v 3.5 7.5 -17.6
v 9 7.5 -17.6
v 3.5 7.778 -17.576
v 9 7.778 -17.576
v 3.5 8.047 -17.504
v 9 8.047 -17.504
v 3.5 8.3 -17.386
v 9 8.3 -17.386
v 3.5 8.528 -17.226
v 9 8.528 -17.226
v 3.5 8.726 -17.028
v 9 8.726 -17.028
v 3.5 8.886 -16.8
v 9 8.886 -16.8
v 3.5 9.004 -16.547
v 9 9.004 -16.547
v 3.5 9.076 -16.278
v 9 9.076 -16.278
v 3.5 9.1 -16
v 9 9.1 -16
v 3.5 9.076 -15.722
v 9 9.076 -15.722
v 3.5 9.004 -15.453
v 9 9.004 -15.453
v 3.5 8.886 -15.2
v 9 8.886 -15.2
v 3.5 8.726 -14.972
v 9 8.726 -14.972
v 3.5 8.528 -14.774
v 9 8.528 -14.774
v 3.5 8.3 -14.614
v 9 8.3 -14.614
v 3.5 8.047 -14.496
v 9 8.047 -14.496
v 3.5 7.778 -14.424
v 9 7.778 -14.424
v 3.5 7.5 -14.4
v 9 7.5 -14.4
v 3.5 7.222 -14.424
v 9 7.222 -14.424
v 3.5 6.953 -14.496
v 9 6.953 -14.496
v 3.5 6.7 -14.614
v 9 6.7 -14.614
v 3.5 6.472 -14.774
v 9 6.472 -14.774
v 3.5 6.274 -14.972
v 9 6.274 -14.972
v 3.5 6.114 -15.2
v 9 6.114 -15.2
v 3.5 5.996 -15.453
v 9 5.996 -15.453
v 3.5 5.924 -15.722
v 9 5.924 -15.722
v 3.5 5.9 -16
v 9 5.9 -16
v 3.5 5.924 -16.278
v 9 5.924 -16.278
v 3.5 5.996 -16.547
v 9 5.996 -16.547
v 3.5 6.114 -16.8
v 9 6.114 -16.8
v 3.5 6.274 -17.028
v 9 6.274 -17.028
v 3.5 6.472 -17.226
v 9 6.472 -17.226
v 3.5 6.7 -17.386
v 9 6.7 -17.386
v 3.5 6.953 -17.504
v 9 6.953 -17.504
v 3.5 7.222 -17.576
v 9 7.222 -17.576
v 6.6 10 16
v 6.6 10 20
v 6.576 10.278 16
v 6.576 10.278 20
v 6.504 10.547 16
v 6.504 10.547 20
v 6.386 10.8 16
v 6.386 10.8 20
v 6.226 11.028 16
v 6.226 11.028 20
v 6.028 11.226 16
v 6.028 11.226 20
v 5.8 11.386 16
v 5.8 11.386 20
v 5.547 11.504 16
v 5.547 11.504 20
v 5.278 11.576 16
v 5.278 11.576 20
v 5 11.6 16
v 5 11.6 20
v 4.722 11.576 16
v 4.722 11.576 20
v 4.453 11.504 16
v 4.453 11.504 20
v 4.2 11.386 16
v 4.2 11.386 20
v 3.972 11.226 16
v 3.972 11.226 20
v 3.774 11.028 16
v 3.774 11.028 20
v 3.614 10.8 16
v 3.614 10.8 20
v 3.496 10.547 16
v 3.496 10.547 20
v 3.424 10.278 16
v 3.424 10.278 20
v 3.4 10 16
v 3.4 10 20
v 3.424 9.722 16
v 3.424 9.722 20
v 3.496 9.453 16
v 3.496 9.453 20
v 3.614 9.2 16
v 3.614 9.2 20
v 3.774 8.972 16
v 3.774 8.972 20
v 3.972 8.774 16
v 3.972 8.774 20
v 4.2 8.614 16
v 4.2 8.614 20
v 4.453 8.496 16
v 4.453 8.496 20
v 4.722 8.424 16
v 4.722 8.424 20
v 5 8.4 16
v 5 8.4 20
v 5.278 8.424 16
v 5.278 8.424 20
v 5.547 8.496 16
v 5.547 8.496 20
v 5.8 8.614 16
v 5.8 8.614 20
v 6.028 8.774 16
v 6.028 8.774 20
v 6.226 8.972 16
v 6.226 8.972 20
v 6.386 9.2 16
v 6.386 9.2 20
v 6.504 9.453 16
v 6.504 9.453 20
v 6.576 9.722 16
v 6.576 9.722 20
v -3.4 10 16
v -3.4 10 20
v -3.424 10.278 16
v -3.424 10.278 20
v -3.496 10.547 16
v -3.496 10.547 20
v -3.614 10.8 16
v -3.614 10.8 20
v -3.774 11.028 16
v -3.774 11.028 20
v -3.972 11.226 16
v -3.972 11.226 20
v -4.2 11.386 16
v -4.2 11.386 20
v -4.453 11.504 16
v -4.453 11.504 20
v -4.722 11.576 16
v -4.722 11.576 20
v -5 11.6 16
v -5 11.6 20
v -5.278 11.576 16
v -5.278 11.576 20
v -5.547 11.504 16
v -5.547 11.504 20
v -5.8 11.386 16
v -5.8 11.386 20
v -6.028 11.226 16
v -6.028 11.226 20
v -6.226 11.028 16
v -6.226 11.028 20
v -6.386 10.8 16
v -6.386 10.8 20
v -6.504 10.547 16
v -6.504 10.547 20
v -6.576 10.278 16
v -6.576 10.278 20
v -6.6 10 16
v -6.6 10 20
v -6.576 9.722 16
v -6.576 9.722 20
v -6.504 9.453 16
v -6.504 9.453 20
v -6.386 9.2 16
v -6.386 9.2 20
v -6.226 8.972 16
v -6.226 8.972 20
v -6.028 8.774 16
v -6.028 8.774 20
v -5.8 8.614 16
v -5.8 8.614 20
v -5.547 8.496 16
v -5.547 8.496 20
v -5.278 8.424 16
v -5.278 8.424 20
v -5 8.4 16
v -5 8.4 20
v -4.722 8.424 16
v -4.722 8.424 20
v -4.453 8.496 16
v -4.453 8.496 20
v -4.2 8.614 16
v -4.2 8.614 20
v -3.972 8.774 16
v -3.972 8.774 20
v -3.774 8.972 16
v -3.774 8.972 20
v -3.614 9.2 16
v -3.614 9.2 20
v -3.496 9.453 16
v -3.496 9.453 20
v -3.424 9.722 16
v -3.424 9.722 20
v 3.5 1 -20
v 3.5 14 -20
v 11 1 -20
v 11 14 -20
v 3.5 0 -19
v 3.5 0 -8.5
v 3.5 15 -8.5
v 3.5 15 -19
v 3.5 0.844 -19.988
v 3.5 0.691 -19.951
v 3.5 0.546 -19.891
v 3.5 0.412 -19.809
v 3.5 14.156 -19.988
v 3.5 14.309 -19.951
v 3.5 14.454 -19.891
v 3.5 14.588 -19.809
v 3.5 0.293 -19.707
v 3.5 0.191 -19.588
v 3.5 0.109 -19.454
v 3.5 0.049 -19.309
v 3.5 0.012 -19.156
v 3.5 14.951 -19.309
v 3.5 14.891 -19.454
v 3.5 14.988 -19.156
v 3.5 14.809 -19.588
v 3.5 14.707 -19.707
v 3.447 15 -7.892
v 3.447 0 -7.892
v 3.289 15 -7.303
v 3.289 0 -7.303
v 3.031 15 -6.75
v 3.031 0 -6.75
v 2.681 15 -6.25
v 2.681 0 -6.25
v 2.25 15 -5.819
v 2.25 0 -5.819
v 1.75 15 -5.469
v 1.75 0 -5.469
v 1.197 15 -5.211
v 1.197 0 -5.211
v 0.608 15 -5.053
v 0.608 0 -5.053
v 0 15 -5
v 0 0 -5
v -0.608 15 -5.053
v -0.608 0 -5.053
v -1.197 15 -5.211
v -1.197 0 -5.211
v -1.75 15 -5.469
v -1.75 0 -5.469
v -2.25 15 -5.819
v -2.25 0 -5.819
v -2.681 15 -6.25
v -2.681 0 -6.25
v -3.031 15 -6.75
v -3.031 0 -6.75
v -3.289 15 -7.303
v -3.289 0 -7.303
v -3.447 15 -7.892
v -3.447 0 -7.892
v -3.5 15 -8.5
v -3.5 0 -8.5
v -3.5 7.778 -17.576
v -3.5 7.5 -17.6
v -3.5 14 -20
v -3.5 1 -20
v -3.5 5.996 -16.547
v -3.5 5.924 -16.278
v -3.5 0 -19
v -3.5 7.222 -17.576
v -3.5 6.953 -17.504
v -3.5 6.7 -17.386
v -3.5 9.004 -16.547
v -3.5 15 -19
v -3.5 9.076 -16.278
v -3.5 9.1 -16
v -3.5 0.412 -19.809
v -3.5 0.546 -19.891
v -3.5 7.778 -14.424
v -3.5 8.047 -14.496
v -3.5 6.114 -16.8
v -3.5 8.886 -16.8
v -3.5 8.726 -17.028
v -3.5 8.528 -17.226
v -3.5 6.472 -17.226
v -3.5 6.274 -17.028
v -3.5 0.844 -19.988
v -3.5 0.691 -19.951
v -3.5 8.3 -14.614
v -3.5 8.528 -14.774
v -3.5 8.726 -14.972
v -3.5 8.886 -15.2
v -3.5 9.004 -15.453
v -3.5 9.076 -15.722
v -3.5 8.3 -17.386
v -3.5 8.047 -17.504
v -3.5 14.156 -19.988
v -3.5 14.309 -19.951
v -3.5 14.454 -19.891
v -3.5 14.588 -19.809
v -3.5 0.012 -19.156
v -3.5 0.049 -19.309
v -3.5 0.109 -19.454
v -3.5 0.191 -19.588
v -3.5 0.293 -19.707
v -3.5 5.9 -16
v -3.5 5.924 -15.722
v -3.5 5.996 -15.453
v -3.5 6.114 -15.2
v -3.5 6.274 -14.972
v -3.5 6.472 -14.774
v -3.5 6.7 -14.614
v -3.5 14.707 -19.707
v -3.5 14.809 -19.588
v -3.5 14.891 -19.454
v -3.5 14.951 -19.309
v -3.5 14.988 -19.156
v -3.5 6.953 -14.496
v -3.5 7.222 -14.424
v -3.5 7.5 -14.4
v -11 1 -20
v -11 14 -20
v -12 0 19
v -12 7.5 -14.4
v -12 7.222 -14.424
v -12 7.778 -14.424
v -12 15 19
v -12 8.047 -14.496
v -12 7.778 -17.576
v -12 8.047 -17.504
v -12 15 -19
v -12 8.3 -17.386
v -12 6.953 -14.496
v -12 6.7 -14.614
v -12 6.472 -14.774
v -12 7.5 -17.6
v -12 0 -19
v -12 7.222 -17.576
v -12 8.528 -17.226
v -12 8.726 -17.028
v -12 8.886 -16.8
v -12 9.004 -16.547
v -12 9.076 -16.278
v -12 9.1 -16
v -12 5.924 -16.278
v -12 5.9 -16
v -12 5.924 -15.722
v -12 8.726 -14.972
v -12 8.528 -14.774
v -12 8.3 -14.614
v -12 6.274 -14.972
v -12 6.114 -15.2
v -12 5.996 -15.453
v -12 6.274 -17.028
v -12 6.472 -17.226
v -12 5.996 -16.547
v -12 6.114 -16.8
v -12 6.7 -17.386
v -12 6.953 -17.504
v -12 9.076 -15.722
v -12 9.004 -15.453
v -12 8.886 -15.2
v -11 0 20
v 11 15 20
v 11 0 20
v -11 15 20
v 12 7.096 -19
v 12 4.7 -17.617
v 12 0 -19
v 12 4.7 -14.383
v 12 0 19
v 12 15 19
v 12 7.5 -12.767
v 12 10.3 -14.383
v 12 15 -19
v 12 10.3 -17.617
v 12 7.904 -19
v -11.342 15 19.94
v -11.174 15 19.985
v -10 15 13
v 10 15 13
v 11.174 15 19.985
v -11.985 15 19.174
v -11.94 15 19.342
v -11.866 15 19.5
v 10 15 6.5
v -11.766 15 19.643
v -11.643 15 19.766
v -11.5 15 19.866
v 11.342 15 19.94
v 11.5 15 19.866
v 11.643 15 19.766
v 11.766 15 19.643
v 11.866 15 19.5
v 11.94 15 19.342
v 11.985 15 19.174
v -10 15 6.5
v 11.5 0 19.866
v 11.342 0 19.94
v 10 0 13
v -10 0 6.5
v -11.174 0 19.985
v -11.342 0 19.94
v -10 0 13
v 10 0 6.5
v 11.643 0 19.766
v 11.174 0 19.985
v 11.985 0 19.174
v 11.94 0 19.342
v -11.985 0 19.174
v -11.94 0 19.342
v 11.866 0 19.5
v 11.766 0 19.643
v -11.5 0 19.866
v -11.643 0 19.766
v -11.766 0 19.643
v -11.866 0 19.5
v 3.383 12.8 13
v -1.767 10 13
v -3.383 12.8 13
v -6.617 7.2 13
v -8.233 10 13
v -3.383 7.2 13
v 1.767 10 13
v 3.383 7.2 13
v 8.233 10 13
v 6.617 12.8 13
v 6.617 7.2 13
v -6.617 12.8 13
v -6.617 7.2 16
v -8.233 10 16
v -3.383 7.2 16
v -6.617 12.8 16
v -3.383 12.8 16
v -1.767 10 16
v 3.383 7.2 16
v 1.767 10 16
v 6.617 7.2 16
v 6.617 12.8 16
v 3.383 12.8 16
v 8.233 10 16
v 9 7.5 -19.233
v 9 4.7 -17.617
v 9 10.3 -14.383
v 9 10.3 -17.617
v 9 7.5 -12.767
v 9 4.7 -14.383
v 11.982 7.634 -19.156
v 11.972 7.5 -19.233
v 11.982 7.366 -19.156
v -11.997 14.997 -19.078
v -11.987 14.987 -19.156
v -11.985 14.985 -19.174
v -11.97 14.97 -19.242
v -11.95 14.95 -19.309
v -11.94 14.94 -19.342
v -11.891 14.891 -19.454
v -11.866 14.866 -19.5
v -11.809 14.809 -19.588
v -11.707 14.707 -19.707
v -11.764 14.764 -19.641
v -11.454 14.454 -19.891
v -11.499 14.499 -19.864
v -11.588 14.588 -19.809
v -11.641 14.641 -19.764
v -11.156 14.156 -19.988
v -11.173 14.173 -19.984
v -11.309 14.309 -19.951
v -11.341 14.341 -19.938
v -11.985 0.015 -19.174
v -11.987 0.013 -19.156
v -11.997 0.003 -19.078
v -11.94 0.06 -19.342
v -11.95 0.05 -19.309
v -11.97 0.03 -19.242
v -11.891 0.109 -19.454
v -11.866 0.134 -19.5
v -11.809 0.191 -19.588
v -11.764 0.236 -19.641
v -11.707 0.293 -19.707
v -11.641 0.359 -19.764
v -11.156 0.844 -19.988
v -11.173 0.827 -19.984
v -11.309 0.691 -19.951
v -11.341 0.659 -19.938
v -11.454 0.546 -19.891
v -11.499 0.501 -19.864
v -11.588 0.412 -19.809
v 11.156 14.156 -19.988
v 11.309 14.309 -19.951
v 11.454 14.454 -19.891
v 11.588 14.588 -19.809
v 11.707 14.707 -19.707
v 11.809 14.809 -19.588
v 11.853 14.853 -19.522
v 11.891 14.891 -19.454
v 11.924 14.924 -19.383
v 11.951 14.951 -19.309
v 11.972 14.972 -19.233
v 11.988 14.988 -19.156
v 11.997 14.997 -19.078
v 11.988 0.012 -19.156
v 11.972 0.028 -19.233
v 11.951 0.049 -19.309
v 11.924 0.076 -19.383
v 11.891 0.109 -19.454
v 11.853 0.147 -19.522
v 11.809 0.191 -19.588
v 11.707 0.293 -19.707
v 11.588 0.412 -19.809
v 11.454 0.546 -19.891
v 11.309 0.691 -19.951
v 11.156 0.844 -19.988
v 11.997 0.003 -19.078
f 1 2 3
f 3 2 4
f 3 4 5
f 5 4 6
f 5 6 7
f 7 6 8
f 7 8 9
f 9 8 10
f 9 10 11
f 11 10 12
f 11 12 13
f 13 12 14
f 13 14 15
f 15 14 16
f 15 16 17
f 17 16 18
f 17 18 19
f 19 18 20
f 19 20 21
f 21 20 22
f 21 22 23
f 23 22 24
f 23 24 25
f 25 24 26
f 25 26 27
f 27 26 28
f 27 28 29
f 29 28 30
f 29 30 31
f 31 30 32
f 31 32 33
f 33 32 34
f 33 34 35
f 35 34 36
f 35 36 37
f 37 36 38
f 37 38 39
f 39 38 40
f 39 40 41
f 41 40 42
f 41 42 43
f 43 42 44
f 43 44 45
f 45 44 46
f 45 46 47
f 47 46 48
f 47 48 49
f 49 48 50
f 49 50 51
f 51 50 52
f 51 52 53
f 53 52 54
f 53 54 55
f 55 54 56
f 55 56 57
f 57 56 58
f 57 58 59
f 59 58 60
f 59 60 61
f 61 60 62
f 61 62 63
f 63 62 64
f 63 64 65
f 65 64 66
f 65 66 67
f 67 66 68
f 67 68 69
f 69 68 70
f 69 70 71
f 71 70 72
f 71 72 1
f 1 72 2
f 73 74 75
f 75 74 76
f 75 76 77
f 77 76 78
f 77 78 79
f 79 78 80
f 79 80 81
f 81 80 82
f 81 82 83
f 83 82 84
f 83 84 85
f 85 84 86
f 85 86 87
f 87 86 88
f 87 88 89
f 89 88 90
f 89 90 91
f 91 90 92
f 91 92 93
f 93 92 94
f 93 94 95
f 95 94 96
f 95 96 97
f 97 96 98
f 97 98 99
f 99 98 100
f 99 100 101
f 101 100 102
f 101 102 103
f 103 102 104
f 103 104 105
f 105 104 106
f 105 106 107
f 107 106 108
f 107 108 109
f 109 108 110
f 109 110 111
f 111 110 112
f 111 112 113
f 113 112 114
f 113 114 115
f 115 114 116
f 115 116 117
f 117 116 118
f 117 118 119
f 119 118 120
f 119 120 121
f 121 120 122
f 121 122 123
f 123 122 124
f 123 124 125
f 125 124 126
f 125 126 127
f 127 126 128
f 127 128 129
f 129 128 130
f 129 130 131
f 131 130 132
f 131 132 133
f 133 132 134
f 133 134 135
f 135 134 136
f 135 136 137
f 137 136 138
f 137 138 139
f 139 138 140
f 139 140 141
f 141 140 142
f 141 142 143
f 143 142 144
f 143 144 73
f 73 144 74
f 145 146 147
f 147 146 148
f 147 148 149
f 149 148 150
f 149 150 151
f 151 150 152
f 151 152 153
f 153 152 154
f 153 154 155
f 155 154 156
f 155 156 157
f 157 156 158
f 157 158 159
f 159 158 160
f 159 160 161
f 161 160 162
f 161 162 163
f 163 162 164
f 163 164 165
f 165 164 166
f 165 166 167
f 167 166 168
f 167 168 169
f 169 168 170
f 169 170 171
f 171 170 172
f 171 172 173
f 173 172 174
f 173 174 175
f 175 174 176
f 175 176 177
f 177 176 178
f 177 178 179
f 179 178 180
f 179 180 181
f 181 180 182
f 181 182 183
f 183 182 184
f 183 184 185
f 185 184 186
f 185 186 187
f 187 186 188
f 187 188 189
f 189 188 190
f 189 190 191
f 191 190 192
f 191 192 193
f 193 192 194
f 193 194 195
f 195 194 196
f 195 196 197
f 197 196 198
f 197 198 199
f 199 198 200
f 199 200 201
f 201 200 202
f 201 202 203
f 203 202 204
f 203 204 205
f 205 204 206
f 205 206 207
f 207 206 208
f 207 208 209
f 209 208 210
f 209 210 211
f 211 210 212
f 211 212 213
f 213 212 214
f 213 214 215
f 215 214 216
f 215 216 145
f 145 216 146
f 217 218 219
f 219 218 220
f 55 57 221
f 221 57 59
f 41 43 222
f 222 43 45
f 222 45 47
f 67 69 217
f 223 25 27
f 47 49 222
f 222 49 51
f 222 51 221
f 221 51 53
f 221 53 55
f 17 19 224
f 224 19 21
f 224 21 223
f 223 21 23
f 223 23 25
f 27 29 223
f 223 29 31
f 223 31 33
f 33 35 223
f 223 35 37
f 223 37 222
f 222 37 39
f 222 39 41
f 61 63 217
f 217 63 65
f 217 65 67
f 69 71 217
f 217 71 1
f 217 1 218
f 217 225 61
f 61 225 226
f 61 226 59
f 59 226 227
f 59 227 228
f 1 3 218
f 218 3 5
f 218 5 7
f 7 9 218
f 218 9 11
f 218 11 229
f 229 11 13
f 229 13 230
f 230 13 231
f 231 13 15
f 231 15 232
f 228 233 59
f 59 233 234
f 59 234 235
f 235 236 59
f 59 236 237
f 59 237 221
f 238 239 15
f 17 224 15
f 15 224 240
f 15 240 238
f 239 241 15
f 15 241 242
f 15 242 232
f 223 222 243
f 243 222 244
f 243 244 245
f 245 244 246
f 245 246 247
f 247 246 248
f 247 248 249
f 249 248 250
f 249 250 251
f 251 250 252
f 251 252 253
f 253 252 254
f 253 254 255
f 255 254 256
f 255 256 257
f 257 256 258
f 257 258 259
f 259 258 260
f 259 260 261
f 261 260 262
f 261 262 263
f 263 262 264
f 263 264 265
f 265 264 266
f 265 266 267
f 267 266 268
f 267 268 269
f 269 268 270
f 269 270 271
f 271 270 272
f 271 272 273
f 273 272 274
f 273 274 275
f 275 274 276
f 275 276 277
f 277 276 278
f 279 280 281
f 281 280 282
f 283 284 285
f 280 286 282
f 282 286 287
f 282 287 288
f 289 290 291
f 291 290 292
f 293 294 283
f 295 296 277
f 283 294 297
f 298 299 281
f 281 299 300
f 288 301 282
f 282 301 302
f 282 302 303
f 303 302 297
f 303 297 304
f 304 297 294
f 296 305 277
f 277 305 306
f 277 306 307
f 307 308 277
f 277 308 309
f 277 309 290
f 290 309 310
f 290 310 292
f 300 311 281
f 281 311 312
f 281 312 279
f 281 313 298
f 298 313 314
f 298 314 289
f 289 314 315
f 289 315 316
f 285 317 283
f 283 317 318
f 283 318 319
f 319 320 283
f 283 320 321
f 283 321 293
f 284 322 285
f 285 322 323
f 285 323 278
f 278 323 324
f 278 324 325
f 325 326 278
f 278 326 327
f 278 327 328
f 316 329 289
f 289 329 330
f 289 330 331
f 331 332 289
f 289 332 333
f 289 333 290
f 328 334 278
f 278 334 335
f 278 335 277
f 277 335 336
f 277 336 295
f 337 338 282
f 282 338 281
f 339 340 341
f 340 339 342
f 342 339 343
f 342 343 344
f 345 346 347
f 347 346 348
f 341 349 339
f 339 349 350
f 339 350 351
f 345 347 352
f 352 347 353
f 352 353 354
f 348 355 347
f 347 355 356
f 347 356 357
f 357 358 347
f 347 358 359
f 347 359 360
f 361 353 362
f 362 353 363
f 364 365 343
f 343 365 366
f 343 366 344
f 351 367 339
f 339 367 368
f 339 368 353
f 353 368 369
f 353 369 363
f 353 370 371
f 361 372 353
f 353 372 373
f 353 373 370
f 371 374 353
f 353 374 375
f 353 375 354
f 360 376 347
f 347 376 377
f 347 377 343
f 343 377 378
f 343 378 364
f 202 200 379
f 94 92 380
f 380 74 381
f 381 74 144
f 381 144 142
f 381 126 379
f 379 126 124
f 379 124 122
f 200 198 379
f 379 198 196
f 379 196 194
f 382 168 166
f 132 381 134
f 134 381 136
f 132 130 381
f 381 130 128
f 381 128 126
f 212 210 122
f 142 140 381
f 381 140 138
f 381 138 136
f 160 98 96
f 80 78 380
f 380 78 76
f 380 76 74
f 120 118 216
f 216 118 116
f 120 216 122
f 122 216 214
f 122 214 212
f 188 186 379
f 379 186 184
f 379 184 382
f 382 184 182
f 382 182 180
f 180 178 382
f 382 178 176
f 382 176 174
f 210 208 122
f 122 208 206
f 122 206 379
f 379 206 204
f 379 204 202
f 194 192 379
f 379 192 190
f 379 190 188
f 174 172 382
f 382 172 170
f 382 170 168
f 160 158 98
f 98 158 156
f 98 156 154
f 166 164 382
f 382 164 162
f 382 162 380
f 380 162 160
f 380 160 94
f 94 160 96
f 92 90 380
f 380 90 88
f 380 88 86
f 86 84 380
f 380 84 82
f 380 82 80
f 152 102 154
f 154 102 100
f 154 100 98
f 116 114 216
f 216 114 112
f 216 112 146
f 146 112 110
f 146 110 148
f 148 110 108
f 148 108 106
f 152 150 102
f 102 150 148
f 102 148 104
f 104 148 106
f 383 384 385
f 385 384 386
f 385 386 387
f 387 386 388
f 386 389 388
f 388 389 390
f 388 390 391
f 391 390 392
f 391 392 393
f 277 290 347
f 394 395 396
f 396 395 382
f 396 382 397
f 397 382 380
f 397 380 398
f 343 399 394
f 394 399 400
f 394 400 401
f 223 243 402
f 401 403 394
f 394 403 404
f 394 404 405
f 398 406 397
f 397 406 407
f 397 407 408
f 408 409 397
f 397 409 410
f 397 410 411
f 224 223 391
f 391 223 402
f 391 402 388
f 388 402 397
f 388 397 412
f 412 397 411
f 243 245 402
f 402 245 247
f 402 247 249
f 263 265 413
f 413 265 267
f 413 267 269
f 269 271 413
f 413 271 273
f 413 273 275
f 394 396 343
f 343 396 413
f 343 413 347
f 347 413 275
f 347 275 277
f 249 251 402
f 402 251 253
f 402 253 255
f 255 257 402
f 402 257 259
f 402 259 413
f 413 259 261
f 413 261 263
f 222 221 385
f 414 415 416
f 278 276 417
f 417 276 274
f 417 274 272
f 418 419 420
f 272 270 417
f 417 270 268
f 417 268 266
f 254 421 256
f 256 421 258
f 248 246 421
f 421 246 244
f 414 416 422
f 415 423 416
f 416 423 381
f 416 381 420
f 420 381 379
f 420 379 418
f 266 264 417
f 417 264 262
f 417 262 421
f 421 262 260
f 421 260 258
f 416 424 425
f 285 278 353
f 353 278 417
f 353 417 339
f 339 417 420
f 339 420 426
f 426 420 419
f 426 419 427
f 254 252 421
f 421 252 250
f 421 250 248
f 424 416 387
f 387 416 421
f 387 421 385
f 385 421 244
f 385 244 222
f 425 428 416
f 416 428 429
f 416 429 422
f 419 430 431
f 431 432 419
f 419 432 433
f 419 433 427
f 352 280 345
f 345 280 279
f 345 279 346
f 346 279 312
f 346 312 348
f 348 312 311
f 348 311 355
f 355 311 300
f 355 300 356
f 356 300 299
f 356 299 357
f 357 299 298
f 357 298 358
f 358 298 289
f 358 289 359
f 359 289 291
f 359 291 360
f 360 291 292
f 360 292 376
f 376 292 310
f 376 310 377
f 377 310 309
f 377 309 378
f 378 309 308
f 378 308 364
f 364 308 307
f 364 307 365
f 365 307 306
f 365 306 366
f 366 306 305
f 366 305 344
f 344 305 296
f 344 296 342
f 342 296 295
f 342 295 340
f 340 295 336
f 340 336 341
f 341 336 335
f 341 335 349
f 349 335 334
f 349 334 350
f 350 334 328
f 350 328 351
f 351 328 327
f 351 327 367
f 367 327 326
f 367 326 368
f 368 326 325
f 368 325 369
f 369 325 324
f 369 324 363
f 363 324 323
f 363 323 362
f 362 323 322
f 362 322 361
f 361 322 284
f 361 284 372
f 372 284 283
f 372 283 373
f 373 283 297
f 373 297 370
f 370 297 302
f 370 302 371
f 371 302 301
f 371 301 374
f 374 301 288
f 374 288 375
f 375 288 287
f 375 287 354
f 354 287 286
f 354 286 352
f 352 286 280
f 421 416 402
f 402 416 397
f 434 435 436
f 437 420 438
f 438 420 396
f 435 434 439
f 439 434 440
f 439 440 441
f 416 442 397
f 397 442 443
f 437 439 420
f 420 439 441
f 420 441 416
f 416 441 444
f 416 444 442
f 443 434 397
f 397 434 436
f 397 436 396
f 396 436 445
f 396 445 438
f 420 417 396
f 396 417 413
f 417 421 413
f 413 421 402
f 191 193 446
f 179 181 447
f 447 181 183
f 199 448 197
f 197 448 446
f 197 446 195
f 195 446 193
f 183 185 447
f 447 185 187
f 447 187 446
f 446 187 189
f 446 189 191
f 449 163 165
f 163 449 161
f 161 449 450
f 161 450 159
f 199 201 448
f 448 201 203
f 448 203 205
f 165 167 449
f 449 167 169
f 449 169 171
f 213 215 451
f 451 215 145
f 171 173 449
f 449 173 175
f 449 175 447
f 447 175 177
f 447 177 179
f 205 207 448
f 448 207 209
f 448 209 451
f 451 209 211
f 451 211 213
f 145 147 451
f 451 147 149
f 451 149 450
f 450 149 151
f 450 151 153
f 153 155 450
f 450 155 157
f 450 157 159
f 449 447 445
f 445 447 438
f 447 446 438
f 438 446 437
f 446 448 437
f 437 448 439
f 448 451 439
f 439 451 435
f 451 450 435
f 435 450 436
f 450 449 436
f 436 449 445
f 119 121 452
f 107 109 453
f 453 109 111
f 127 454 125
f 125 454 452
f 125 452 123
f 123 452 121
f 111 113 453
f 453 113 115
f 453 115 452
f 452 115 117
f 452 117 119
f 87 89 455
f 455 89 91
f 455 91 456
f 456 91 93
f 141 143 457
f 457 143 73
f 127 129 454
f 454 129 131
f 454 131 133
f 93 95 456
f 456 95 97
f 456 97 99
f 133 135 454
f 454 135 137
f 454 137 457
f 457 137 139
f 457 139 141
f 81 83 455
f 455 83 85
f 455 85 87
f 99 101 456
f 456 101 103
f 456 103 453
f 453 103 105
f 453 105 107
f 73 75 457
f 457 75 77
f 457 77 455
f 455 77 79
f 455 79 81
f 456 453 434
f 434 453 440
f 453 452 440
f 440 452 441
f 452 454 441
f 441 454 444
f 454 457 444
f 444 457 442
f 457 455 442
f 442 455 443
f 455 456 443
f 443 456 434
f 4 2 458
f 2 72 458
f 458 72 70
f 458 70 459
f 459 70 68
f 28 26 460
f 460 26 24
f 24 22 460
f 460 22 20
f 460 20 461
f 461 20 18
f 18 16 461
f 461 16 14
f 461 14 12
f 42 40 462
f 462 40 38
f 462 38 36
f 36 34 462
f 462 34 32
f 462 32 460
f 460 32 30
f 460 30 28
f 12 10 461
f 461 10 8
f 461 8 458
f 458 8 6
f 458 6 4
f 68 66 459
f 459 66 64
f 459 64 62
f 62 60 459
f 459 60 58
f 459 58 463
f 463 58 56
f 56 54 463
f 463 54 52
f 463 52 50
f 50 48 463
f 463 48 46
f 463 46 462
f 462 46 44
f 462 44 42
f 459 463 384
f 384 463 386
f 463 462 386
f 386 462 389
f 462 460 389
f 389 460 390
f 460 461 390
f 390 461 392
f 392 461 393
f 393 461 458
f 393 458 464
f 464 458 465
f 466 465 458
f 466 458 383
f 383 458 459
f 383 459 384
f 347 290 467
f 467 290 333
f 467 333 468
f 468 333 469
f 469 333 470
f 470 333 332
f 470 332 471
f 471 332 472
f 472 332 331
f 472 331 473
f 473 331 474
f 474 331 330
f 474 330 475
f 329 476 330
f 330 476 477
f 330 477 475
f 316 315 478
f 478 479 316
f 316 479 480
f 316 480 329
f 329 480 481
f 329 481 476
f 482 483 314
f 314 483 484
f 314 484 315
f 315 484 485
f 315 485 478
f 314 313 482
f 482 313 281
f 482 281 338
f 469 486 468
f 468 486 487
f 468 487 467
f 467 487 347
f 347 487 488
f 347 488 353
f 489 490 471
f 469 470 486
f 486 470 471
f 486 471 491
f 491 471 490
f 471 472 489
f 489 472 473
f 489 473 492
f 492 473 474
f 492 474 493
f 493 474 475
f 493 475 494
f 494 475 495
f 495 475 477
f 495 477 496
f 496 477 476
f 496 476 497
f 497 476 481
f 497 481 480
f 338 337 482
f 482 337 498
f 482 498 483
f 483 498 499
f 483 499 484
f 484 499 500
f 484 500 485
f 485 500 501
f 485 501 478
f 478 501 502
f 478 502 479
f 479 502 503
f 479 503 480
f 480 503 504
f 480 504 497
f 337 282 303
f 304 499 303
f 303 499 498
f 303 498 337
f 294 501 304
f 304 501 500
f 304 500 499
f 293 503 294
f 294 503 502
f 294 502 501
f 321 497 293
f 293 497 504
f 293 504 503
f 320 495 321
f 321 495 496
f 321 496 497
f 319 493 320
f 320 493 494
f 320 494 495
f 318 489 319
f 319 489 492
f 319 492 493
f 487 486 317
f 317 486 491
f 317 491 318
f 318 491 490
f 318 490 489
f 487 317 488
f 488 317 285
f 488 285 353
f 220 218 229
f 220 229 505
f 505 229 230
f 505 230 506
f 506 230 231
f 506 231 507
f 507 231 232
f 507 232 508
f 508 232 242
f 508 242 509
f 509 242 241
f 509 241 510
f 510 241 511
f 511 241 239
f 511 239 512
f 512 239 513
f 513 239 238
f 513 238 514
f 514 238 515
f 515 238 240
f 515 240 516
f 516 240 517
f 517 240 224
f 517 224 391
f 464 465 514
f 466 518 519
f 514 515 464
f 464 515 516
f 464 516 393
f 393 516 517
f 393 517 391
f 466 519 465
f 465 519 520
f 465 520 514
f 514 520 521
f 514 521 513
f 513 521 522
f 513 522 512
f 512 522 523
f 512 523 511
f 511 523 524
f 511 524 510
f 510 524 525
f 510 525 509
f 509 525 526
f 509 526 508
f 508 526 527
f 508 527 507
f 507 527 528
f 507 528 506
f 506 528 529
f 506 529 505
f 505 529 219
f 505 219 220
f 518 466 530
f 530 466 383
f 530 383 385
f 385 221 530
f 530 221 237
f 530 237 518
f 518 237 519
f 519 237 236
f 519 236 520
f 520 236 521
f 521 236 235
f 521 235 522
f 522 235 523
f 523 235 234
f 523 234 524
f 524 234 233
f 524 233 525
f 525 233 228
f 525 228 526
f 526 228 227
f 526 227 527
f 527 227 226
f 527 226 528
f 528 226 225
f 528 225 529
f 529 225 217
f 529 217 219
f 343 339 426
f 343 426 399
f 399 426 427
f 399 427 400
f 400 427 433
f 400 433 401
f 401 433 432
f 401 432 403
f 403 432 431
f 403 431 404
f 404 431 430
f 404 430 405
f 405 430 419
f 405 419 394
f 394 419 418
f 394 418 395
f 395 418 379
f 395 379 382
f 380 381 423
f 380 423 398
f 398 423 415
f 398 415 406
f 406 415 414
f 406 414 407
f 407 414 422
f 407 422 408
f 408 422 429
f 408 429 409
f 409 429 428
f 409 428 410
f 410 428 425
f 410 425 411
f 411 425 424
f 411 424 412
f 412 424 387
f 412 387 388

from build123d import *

# Parameters (mm, degrees)
SALIENTE_EXTRUIR2_DEPTH    = 15
CORTAR_EXTRUIR2_DEPTH      = 28.730849248
CORTAR_EXTRUIR2_DEPTH_BACK = 28.730849248
CROQUIS3_R                 = 1.6
CROQUIS4_W                 = 20
CROQUIS4_H                 = 6.5
CORTAR_EXTRUIR3_DEPTH      = 28.730849248
CORTAR_EXTRUIR4_REACH      = 46.373
CROQUIS5_R                 = 1.6
CORTAR_EXTRUIR5_DEPTH      = 3
CORTAR_EXTRUIR6_DEPTH      = 3
REDONDEO1_R                = 1


with BuildPart() as part:
    # Croquis1 → Saliente-Extruir2 (new body)
    with BuildSketch(Plane(origin=(0, 0, 0), x_dir=(1, 0, 0), z_dir=(0, 1, 0))):
        with BuildLine():
            Line((-12, -20), (12, -20))
            Line((12, -20), (12, 20))
            Line((12, 20), (3.5, 20))
            Line((3.5, 20), (3.5, 8.5))
            ThreePointArc((3.5, 8.5), (0, 5), (-3.5, 8.5))
            Line((-3.5, 8.5), (-3.5, 20))
            Line((-3.5, 20), (-12, 20))
            Line((-12, 20), (-12, -20))
        make_face()
    extrude(amount=SALIENTE_EXTRUIR2_DEPTH)

    # Croquis3 → Cortar-Extruir2 (cut, two sides: drawn at the far end of the back side and taken through both)
    with BuildSketch(Plane(origin=(0, 0, 0), x_dir=(0, 0, -1), z_dir=(1, 0, 0)).offset(-CORTAR_EXTRUIR2_DEPTH_BACK)):
        with Locations((16, 7.5)):
            Circle(CROQUIS3_R)
    extrude(amount=CORTAR_EXTRUIR2_DEPTH + CORTAR_EXTRUIR2_DEPTH_BACK, mode=Mode.SUBTRACT)

    # Croquis4 → Cortar-Extruir3 (cut, through all)
    with BuildSketch(Plane(origin=(0, 15, 0), x_dir=(1, 0, 0), z_dir=(0, 1, 0))):
        with Locations((0, -9.75)):
            Rectangle(CROQUIS4_W, CROQUIS4_H)
    extrude(amount=-CORTAR_EXTRUIR3_DEPTH, mode=Mode.SUBTRACT)

    # Croquis5 → Cortar-Extruir4 (cut, up to next)
    with BuildSketch(Plane.XY.offset(20), mode=Mode.PRIVATE) as cortar_extruir4_sk1:
        with Locations((-5, 10)):
            Circle(CROQUIS5_R)
    cortar_extruir4_tool1 = extrude(cortar_extruir4_sk1.sketch, amount=-CORTAR_EXTRUIR4_REACH, mode=Mode.PRIVATE) & part.part
    # Croquis5 → Cortar-Extruir4 (cut, up to next)
    with BuildSketch(Plane.XY.offset(20), mode=Mode.PRIVATE) as cortar_extruir4_sk2:
        with Locations((5, 10)):
            Circle(CROQUIS5_R)
    cortar_extruir4_tool2 = extrude(cortar_extruir4_sk2.sketch, amount=-CORTAR_EXTRUIR4_REACH, mode=Mode.PRIVATE) & part.part
    add(cortar_extruir4_tool1.solids().sort_by_distance((-5, 10, 20))[0], mode=Mode.SUBTRACT)
    add(cortar_extruir4_tool2.solids().sort_by_distance((5, 10, 20))[0], mode=Mode.SUBTRACT)

    # Croquis6 → Cortar-Extruir5 (cut)
    with BuildSketch(Plane(origin=(0, 0, 13), x_dir=(-1, 0, 0), z_dir=(0, 0, -1))):
        Polygon((-3.383419246, 12.8), (-6.616580754, 12.8), (-8.233161507, 10), (-6.616580754, 7.2), (-3.383419246, 7.2), (-1.766838493, 10), align=None)
        Polygon((6.616580754, 12.8), (3.383419246, 12.8), (1.766838493, 10), (3.383419246, 7.2), (6.616580754, 7.2), (8.233161507, 10), align=None)
    extrude(amount=-CORTAR_EXTRUIR5_DEPTH, mode=Mode.SUBTRACT)

    # Croquis7 → Cortar-Extruir6 (cut)
    with BuildSketch(Plane(origin=(12, 0, 0), x_dir=(0, 0, -1), z_dir=(1, 0, 0))):
        Polygon((17.616580754, 4.7), (19.233161507, 7.5), (17.616580754, 10.3), (14.383419246, 10.3), (12.766838493, 7.5), (14.383419246, 4.7), align=None)
    extrude(amount=-CORTAR_EXTRUIR6_DEPTH, mode=Mode.SUBTRACT)

    # Redondeo1
    # the kernel refuses this fillet: 1 mm, written as the material it takes off along each edge
    with BuildSketch(Plane(origin=(14.5, 0, -20), x_dir=(0, 0, 1), z_dir=(-1, 0, 0)), Plane(origin=(-1, 0, -20), x_dir=(0, 0, 1), z_dir=(-1, 0, 0))) as redondeo1_piece_1:
        with BuildLine():
            CenterArc((REDONDEO1_R, REDONDEO1_R), REDONDEO1_R, 180, 90)
            Line((0, REDONDEO1_R), (0, 0))
            Line((0, 0), (REDONDEO1_R, 0))
        make_face()
    extrude(amount=13.5, mode=Mode.SUBTRACT)
    with BuildSketch(Plane(origin=(12, -2.5, -20), x_dir=(0, 0, 1), z_dir=(0, 1, 0)), Plane(origin=(12, -2.5, 20), x_dir=(-1, 0, 0), z_dir=(0, 1, 0))) as redondeo1_piece_2:
        with BuildLine():
            CenterArc((REDONDEO1_R, -REDONDEO1_R), REDONDEO1_R, 90, 90)
            Line((0, -REDONDEO1_R), (0, 0))
            Line((0, 0), (REDONDEO1_R, 0))
        make_face()
    extrude(amount=20, mode=Mode.SUBTRACT)
    with BuildSketch(Plane(origin=(-12, -2.5, 20), x_dir=(1, 0, 0), z_dir=(0, 1, 0)), Plane(origin=(-12, -2.5, -20), x_dir=(0, 0, 1), z_dir=(0, 1, 0))) as redondeo1_piece_3:
        with BuildLine():
            CenterArc((REDONDEO1_R, REDONDEO1_R), REDONDEO1_R, 180, 90)
            Line((0, REDONDEO1_R), (0, 0))
            Line((0, 0), (REDONDEO1_R, 0))
        make_face()
    extrude(amount=20, mode=Mode.SUBTRACT)
    with BuildSketch(Plane(origin=(-1, 15, -20), x_dir=(0, 0, 1), z_dir=(-1, 0, 0)), Plane(origin=(14.5, 15, -20), x_dir=(0, 0, 1), z_dir=(-1, 0, 0))) as redondeo1_piece_4:
        with BuildLine():
            CenterArc((REDONDEO1_R, -REDONDEO1_R), REDONDEO1_R, 90, 90)
            Line((0, -REDONDEO1_R), (0, 0))
            Line((0, 0), (REDONDEO1_R, 0))
        make_face()
    extrude(amount=13.5, mode=Mode.SUBTRACT)


solid = part.part
